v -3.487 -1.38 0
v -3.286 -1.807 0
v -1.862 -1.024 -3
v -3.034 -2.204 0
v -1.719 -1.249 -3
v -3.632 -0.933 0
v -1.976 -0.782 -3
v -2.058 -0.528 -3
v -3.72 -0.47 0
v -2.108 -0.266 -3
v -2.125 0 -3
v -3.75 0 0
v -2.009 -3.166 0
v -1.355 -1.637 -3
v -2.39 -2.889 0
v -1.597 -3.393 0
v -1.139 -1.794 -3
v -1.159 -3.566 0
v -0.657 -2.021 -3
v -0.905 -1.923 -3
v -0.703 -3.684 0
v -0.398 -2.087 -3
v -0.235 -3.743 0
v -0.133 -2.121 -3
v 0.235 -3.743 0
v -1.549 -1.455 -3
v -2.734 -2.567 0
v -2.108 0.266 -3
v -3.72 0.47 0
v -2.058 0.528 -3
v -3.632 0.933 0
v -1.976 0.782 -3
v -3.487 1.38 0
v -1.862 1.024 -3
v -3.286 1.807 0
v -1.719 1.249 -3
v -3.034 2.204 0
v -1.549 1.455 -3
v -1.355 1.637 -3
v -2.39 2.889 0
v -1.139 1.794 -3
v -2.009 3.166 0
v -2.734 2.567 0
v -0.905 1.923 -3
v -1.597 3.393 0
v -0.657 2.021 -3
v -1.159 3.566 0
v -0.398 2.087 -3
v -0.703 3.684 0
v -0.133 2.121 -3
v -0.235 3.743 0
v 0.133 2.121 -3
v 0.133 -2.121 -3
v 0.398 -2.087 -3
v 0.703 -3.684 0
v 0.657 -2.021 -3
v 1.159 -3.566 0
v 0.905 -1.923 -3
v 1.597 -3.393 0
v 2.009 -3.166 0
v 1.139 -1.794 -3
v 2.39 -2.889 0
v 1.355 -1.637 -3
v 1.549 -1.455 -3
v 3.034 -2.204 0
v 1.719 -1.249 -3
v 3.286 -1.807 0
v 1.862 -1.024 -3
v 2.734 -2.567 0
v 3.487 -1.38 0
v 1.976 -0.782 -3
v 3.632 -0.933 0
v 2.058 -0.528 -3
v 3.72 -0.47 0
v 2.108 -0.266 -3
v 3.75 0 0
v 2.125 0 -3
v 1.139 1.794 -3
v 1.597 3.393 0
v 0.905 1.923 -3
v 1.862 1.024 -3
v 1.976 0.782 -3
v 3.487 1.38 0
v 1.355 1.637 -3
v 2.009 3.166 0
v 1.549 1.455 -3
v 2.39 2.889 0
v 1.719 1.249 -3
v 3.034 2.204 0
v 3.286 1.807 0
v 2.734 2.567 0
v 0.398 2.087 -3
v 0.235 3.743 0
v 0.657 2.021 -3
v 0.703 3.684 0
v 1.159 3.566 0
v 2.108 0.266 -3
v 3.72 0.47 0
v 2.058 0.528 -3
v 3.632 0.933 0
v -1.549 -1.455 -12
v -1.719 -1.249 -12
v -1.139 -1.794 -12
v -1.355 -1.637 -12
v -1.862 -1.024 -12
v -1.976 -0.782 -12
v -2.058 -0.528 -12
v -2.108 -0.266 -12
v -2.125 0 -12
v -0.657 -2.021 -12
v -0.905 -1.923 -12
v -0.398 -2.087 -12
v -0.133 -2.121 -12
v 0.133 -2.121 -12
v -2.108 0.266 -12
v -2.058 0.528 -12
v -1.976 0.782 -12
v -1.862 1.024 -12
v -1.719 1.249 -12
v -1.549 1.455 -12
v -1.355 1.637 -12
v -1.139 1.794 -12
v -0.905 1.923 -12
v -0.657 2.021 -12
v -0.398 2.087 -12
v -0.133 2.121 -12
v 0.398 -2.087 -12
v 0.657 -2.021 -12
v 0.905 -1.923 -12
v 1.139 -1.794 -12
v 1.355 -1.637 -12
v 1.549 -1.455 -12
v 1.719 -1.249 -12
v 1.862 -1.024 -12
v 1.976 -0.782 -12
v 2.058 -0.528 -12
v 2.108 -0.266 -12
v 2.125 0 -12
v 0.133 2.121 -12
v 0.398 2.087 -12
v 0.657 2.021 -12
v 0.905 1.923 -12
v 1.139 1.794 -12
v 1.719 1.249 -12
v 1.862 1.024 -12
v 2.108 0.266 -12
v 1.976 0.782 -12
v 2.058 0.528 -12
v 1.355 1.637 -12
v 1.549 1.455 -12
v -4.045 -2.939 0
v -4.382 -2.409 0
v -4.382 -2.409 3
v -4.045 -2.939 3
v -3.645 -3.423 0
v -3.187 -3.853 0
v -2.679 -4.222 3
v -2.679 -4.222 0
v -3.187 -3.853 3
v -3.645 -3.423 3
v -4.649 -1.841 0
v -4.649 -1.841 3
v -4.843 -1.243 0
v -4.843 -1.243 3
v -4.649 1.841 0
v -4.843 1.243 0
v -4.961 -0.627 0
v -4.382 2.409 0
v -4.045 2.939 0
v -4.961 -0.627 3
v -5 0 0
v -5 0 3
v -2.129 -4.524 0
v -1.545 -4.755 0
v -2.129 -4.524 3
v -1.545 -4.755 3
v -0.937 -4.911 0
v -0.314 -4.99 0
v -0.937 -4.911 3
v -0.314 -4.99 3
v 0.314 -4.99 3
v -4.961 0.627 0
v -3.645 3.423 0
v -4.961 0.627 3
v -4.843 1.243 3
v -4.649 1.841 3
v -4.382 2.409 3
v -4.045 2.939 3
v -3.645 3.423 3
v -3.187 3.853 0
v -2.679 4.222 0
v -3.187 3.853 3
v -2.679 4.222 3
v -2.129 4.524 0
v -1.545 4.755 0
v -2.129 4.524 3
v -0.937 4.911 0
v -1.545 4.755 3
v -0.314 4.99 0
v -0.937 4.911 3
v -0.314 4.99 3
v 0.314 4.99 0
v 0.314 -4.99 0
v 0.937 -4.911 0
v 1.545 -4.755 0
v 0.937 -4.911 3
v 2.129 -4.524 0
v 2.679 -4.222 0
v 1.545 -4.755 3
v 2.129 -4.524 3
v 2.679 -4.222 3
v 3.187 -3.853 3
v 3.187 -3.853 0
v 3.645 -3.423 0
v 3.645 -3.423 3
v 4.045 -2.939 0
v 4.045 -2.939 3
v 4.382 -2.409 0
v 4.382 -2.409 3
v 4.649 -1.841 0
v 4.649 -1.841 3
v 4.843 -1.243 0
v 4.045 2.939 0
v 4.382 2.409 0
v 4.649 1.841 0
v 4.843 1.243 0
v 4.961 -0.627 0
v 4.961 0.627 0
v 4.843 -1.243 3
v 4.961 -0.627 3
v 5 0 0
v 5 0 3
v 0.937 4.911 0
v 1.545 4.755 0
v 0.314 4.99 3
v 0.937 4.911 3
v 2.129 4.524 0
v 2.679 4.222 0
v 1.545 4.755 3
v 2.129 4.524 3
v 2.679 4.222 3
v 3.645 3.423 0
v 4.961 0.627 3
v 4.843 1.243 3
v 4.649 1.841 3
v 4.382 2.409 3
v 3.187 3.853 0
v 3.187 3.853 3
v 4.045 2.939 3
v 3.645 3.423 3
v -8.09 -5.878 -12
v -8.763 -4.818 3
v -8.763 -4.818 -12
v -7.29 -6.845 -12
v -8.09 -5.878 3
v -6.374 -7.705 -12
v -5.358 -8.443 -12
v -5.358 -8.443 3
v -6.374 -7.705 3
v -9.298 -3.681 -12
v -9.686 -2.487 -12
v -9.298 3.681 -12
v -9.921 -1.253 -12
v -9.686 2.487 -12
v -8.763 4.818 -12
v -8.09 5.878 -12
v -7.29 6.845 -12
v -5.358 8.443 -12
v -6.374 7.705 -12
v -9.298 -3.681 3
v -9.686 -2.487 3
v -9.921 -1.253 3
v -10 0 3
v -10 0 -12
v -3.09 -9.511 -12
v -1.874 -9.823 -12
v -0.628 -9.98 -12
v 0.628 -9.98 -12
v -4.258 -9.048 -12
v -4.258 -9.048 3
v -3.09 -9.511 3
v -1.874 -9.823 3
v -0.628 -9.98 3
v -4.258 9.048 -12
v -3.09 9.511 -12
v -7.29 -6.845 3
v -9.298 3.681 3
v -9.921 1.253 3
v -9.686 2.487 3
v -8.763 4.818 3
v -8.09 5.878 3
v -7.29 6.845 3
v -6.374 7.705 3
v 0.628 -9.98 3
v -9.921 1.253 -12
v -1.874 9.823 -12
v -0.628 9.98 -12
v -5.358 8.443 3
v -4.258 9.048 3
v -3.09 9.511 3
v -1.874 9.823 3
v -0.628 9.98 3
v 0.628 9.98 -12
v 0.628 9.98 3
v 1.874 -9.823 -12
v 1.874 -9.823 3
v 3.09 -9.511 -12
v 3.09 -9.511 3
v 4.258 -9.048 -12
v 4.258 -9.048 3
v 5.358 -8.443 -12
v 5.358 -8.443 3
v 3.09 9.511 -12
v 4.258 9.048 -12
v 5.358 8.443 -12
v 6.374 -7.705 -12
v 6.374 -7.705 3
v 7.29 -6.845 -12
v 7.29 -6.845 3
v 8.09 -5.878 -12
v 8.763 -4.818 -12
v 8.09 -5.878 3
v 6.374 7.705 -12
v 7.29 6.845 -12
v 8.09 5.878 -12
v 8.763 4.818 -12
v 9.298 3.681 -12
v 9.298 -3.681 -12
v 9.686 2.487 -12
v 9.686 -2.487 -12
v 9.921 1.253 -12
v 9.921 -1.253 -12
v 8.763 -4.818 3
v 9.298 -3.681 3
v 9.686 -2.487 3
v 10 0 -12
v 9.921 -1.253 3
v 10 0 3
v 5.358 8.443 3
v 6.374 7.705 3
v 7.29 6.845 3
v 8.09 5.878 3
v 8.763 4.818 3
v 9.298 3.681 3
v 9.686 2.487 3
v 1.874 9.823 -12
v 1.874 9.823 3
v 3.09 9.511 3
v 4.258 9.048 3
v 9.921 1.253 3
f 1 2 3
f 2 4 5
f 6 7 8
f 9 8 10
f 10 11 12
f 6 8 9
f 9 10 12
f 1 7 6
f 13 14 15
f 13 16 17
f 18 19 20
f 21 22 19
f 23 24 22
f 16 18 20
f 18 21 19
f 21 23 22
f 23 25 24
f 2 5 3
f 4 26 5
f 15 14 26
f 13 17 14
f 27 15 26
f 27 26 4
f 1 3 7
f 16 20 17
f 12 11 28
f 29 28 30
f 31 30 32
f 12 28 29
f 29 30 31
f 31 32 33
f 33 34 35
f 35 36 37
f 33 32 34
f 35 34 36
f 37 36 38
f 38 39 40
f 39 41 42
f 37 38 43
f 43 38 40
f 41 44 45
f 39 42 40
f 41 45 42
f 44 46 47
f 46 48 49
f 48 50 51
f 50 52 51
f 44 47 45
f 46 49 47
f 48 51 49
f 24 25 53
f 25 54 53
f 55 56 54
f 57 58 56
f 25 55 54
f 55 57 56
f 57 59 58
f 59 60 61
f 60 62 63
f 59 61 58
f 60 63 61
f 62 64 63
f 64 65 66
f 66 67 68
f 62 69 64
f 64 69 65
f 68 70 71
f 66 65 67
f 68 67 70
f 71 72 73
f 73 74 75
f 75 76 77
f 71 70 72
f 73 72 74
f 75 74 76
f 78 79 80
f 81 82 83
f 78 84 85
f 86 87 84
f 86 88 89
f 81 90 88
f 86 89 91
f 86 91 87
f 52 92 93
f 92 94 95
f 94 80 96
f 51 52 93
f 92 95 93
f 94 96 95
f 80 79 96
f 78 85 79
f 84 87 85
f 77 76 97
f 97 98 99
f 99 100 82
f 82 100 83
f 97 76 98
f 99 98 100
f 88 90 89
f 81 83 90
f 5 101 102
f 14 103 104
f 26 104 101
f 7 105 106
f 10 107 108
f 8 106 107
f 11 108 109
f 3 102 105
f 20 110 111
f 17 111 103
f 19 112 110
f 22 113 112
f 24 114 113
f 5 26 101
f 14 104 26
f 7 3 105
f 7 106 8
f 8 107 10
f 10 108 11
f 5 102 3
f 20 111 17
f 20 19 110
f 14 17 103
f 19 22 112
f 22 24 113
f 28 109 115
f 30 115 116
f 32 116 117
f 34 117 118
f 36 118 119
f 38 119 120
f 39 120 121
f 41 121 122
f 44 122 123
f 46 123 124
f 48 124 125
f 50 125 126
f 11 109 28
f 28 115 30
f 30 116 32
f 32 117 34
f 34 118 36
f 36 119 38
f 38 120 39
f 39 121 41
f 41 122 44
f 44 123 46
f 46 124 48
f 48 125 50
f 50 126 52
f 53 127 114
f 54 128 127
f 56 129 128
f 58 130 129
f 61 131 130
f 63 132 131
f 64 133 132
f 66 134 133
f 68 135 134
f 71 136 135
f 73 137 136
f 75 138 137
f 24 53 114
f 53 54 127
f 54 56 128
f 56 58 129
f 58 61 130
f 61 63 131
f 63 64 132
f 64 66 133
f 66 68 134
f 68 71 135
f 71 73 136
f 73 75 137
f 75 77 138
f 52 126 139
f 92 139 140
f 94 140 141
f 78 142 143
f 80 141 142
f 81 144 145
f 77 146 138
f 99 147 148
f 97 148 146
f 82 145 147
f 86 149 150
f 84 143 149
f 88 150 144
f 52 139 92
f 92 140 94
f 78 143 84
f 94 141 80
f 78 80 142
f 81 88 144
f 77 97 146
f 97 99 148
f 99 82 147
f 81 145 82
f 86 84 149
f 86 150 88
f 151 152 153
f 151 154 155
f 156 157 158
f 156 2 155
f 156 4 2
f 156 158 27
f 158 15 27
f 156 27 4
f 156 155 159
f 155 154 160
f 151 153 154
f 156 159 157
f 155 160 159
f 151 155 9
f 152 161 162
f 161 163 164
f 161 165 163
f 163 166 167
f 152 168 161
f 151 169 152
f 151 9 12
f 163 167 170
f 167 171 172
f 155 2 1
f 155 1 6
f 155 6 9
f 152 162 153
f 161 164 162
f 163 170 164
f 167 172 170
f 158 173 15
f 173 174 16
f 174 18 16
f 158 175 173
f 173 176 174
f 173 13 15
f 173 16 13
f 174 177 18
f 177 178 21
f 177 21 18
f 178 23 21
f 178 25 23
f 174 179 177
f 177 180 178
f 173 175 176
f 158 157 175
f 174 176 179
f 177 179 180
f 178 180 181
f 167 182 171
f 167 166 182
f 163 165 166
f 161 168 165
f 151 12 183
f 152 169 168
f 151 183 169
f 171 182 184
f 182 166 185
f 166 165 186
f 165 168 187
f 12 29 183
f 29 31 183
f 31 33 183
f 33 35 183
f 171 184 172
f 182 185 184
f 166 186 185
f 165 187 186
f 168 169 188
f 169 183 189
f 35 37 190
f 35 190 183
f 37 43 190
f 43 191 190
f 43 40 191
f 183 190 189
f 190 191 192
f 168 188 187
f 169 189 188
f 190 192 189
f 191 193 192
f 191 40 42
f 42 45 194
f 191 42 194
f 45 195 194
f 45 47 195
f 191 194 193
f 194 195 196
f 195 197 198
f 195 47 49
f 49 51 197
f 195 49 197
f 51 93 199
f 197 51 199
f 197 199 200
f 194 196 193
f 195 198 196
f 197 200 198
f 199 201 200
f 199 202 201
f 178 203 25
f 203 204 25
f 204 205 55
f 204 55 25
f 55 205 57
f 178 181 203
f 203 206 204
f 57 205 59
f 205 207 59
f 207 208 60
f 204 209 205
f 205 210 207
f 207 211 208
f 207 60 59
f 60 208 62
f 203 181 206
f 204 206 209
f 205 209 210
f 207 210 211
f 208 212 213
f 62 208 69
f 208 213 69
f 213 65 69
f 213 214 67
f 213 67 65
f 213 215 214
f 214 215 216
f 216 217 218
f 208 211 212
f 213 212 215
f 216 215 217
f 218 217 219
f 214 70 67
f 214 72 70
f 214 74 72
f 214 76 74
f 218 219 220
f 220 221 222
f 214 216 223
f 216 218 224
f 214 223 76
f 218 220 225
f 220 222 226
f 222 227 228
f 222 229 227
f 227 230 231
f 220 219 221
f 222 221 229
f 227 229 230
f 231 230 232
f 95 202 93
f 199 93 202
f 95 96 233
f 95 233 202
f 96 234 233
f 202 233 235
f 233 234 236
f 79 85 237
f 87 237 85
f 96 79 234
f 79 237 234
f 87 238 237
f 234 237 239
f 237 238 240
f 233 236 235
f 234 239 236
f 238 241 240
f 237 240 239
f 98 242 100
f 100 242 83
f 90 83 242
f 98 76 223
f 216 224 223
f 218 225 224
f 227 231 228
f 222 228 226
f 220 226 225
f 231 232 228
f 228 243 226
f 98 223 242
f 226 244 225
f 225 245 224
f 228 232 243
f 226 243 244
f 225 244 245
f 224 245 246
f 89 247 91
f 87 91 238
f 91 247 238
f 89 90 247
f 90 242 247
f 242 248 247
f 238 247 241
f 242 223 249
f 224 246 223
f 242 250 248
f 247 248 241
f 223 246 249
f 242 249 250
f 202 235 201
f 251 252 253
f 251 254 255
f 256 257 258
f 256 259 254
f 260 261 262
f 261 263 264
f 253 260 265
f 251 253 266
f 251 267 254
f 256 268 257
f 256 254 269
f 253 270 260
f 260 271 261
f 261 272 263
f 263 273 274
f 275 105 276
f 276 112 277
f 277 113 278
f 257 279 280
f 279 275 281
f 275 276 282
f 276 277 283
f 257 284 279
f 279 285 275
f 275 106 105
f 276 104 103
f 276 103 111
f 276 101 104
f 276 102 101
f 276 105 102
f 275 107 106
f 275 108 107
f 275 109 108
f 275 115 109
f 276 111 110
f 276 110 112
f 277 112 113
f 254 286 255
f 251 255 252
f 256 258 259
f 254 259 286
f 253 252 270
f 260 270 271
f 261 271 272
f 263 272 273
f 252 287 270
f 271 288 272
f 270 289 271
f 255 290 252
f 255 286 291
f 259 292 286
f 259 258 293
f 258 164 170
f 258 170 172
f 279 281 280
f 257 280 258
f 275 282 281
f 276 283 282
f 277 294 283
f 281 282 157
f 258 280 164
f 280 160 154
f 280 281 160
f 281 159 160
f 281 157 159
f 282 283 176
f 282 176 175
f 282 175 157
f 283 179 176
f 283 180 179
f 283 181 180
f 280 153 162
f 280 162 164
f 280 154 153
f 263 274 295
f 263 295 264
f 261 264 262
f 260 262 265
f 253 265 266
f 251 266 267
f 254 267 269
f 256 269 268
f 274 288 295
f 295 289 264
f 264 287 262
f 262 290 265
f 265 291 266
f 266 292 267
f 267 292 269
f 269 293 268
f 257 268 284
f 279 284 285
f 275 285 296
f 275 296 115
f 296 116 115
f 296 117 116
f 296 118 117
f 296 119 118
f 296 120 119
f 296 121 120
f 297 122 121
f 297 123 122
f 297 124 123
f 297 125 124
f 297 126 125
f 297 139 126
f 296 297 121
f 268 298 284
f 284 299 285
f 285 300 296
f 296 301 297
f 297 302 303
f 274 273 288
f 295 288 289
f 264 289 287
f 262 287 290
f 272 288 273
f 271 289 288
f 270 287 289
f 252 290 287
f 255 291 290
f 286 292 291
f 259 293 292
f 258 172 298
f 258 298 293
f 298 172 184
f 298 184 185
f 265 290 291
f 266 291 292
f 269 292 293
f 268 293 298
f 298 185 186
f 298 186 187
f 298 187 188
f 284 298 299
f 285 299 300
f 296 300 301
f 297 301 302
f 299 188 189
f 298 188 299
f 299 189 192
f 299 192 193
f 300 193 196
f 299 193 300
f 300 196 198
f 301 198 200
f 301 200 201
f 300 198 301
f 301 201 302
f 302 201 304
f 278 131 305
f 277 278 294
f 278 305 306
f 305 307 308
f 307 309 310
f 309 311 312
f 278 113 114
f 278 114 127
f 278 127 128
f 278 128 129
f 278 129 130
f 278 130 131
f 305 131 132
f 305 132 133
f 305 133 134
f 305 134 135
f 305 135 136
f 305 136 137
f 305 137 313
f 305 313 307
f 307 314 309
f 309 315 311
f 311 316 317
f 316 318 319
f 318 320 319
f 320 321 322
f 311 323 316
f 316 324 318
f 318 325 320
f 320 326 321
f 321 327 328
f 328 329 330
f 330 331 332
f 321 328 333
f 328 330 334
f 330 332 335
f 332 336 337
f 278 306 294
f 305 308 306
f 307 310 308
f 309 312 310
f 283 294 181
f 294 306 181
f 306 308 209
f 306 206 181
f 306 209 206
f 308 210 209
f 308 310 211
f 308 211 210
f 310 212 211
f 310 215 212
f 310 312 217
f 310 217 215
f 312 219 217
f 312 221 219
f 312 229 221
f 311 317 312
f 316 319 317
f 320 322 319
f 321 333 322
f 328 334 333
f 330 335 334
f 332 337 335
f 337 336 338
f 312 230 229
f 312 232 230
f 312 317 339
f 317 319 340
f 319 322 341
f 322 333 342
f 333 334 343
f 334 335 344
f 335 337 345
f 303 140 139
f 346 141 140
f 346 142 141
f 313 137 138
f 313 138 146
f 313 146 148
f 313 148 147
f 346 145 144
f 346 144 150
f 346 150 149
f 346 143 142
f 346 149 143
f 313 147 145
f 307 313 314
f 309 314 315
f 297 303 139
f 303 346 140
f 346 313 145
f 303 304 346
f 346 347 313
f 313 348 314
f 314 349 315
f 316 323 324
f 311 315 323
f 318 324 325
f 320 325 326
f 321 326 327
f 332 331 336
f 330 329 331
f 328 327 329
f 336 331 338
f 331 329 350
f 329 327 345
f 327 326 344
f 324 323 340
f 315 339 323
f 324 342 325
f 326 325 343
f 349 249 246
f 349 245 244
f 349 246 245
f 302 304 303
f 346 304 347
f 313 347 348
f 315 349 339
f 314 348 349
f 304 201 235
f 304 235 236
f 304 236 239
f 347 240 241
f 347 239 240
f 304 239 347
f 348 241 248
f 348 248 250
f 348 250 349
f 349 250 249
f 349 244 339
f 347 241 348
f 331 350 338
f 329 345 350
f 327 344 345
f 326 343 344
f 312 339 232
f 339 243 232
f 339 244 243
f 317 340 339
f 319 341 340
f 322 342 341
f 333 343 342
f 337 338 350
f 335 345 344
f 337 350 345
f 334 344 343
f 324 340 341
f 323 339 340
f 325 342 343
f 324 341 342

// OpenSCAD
$fn = 50;


difference() {
	union() {
		translate(v = [0, 0, -12.0000000000]) {
			cylinder(h = 15, r = 10.0000000000);
		}
	}
	union() {
		translate(v = [0, 0, 0]) {
			rotate(a = [0, 0, 0]) {
				difference() {
					union() {
						translate(v = [0, 0, -15.0000000000]) {
							cylinder(h = 15, r = 2.0000000000);
						}
						translate(v = [0, 0, -3]) {
							cylinder(h = 3, r1 = 2.1250000000, r2 = 3.7500000000);
						}
						translate(v = [0, 0, -15.0000000000]) {
							cylinder(h = 15, r = 2.1250000000);
						}
						translate(v = [0, 0, -15.0000000000]) {
							cylinder(h = 15, r = 2.0000000000);
						}
					}
					union();
				}
			}
		}
		#cylinder(h = 3, r = 5.0000000000);
	}
}
